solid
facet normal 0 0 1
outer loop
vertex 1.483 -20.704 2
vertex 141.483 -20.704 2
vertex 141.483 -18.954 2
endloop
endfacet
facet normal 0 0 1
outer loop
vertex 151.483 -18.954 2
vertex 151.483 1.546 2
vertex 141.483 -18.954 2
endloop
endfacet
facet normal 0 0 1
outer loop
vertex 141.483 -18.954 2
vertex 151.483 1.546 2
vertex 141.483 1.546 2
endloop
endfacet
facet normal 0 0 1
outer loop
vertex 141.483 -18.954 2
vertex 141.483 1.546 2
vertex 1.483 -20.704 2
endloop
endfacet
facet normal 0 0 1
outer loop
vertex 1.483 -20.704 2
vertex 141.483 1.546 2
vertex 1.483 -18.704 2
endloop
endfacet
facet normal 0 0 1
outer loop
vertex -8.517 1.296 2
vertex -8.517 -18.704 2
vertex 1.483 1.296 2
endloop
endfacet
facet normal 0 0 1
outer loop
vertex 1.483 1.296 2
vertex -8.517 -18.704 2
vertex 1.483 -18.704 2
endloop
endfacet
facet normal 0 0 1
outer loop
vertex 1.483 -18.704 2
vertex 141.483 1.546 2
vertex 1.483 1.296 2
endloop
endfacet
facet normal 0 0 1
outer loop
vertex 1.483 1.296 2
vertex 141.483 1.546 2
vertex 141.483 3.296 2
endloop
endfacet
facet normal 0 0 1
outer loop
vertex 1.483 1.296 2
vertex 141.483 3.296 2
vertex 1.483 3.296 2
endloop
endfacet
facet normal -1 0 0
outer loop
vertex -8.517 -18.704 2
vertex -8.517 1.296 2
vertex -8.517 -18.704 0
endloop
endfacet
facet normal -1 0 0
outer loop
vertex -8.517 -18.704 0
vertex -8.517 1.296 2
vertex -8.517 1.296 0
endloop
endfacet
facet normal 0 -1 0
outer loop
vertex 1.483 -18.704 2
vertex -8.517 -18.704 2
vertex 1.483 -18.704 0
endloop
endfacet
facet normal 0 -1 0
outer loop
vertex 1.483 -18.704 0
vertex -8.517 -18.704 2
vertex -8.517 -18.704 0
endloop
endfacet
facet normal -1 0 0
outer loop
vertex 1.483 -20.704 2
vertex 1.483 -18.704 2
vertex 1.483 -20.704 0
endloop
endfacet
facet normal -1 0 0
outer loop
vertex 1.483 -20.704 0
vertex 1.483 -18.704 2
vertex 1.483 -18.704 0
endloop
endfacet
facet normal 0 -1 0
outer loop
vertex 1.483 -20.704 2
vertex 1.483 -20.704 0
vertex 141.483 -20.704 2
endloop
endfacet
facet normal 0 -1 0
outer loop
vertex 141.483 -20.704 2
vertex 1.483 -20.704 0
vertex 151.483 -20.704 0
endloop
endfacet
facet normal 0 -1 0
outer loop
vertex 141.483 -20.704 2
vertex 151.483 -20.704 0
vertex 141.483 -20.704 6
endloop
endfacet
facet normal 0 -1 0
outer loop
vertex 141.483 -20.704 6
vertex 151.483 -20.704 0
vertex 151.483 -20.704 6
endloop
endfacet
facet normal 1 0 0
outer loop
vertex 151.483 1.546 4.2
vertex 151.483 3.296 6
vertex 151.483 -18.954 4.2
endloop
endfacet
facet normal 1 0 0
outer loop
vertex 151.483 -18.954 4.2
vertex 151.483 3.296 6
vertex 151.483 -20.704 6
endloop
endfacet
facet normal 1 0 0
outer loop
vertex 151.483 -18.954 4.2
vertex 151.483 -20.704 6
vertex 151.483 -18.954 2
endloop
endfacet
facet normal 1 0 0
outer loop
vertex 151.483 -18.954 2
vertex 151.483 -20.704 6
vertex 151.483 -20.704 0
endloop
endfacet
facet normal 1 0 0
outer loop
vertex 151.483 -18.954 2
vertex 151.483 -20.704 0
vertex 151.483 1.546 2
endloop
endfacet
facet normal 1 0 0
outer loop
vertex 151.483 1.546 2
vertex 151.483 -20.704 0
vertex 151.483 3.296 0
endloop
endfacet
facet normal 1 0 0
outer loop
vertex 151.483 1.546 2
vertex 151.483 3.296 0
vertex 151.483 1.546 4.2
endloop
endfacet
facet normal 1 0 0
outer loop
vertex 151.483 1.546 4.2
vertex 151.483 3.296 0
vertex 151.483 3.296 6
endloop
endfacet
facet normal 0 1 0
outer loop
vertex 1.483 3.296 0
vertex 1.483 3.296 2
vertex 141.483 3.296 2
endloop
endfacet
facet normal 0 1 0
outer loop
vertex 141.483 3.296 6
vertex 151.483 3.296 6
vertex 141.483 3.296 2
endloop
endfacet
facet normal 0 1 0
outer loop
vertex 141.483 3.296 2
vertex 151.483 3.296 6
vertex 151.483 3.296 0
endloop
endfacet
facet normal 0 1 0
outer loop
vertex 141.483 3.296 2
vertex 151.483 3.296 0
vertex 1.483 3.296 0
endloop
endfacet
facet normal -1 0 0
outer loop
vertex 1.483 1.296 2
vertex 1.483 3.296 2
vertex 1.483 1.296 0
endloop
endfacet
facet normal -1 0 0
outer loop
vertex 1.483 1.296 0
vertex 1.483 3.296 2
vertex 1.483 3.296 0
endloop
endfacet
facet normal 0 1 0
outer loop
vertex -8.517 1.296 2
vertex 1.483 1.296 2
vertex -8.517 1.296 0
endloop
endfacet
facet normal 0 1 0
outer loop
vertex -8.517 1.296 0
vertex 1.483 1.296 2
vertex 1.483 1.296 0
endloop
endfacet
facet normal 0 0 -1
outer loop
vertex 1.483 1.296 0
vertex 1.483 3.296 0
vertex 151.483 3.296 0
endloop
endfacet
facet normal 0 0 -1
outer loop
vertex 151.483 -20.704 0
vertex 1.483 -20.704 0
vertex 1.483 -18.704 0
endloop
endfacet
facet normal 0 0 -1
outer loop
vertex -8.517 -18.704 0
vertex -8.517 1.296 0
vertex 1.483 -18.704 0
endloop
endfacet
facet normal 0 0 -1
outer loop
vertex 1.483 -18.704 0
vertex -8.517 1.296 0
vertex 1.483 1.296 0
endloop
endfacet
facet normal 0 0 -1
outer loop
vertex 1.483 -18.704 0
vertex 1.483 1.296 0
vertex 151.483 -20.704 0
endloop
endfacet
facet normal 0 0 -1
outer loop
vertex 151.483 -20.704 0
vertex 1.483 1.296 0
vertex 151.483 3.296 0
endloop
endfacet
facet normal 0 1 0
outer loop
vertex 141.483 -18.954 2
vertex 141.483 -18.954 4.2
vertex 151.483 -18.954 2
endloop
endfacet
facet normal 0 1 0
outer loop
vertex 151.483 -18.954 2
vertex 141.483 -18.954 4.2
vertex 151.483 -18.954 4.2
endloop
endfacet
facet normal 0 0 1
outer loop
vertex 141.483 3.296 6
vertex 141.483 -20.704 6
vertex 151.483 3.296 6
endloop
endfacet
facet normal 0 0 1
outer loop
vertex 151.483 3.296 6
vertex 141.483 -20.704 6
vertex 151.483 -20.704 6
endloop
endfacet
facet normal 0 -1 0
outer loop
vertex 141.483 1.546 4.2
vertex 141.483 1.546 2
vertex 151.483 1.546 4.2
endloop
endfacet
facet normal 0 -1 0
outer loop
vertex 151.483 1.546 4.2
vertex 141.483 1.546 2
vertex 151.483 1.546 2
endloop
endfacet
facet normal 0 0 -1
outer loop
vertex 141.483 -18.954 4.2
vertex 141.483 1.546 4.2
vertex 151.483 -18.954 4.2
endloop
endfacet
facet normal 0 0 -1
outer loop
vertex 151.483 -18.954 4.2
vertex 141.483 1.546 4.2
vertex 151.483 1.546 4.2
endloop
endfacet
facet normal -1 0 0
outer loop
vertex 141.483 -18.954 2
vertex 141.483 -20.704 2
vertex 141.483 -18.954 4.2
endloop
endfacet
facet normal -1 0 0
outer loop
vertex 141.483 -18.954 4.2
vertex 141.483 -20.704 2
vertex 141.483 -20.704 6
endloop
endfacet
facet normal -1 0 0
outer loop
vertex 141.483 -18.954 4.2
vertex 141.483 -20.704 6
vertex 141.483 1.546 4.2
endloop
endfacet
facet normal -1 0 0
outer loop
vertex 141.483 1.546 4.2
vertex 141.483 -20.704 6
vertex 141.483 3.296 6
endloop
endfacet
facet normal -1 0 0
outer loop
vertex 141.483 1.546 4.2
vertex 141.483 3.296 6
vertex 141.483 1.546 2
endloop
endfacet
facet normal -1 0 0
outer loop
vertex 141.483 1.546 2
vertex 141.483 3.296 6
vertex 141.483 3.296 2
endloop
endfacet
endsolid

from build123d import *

# Parameters (mm, degrees)
SALIENTE_EXTRUIR1_DEPTH = 2
SALIENTE_EXTRUIR2_DEPTH = 10


with BuildPart() as part:
    # Croquis1 → Saliente-Extruir1 (new body)
    with BuildSketch(Plane.XY):
        Polygon((-8.516541248, 1.295896328), (1.483458752, 1.295896328), (1.483458752, 3.295896328), (151.483458752, 3.295896328), (151.483458752, -20.704103672), (1.483458752, -20.704103672), (1.483458752, -18.704103672), (-8.516541248, -18.704103672), align=None)
    extrude(amount=SALIENTE_EXTRUIR1_DEPTH)

    # Croquis3 → Saliente-Extruir2 (add)
    with BuildSketch(Plane(origin=(151.483458752, 0, 0), x_dir=(0, 0, -1), z_dir=(1, 0, 0))):
        Polygon((-2, 1.545896328), (-2, 3.295896328), (-6, 3.295896328), (-6, -20.704103672), (-2, -20.704103672), (-2, -18.954103672), (-4.2, -18.954103672), (-4.2, 1.545896328), align=None)
    extrude(amount=-SALIENTE_EXTRUIR2_DEPTH)


solid = part.part
